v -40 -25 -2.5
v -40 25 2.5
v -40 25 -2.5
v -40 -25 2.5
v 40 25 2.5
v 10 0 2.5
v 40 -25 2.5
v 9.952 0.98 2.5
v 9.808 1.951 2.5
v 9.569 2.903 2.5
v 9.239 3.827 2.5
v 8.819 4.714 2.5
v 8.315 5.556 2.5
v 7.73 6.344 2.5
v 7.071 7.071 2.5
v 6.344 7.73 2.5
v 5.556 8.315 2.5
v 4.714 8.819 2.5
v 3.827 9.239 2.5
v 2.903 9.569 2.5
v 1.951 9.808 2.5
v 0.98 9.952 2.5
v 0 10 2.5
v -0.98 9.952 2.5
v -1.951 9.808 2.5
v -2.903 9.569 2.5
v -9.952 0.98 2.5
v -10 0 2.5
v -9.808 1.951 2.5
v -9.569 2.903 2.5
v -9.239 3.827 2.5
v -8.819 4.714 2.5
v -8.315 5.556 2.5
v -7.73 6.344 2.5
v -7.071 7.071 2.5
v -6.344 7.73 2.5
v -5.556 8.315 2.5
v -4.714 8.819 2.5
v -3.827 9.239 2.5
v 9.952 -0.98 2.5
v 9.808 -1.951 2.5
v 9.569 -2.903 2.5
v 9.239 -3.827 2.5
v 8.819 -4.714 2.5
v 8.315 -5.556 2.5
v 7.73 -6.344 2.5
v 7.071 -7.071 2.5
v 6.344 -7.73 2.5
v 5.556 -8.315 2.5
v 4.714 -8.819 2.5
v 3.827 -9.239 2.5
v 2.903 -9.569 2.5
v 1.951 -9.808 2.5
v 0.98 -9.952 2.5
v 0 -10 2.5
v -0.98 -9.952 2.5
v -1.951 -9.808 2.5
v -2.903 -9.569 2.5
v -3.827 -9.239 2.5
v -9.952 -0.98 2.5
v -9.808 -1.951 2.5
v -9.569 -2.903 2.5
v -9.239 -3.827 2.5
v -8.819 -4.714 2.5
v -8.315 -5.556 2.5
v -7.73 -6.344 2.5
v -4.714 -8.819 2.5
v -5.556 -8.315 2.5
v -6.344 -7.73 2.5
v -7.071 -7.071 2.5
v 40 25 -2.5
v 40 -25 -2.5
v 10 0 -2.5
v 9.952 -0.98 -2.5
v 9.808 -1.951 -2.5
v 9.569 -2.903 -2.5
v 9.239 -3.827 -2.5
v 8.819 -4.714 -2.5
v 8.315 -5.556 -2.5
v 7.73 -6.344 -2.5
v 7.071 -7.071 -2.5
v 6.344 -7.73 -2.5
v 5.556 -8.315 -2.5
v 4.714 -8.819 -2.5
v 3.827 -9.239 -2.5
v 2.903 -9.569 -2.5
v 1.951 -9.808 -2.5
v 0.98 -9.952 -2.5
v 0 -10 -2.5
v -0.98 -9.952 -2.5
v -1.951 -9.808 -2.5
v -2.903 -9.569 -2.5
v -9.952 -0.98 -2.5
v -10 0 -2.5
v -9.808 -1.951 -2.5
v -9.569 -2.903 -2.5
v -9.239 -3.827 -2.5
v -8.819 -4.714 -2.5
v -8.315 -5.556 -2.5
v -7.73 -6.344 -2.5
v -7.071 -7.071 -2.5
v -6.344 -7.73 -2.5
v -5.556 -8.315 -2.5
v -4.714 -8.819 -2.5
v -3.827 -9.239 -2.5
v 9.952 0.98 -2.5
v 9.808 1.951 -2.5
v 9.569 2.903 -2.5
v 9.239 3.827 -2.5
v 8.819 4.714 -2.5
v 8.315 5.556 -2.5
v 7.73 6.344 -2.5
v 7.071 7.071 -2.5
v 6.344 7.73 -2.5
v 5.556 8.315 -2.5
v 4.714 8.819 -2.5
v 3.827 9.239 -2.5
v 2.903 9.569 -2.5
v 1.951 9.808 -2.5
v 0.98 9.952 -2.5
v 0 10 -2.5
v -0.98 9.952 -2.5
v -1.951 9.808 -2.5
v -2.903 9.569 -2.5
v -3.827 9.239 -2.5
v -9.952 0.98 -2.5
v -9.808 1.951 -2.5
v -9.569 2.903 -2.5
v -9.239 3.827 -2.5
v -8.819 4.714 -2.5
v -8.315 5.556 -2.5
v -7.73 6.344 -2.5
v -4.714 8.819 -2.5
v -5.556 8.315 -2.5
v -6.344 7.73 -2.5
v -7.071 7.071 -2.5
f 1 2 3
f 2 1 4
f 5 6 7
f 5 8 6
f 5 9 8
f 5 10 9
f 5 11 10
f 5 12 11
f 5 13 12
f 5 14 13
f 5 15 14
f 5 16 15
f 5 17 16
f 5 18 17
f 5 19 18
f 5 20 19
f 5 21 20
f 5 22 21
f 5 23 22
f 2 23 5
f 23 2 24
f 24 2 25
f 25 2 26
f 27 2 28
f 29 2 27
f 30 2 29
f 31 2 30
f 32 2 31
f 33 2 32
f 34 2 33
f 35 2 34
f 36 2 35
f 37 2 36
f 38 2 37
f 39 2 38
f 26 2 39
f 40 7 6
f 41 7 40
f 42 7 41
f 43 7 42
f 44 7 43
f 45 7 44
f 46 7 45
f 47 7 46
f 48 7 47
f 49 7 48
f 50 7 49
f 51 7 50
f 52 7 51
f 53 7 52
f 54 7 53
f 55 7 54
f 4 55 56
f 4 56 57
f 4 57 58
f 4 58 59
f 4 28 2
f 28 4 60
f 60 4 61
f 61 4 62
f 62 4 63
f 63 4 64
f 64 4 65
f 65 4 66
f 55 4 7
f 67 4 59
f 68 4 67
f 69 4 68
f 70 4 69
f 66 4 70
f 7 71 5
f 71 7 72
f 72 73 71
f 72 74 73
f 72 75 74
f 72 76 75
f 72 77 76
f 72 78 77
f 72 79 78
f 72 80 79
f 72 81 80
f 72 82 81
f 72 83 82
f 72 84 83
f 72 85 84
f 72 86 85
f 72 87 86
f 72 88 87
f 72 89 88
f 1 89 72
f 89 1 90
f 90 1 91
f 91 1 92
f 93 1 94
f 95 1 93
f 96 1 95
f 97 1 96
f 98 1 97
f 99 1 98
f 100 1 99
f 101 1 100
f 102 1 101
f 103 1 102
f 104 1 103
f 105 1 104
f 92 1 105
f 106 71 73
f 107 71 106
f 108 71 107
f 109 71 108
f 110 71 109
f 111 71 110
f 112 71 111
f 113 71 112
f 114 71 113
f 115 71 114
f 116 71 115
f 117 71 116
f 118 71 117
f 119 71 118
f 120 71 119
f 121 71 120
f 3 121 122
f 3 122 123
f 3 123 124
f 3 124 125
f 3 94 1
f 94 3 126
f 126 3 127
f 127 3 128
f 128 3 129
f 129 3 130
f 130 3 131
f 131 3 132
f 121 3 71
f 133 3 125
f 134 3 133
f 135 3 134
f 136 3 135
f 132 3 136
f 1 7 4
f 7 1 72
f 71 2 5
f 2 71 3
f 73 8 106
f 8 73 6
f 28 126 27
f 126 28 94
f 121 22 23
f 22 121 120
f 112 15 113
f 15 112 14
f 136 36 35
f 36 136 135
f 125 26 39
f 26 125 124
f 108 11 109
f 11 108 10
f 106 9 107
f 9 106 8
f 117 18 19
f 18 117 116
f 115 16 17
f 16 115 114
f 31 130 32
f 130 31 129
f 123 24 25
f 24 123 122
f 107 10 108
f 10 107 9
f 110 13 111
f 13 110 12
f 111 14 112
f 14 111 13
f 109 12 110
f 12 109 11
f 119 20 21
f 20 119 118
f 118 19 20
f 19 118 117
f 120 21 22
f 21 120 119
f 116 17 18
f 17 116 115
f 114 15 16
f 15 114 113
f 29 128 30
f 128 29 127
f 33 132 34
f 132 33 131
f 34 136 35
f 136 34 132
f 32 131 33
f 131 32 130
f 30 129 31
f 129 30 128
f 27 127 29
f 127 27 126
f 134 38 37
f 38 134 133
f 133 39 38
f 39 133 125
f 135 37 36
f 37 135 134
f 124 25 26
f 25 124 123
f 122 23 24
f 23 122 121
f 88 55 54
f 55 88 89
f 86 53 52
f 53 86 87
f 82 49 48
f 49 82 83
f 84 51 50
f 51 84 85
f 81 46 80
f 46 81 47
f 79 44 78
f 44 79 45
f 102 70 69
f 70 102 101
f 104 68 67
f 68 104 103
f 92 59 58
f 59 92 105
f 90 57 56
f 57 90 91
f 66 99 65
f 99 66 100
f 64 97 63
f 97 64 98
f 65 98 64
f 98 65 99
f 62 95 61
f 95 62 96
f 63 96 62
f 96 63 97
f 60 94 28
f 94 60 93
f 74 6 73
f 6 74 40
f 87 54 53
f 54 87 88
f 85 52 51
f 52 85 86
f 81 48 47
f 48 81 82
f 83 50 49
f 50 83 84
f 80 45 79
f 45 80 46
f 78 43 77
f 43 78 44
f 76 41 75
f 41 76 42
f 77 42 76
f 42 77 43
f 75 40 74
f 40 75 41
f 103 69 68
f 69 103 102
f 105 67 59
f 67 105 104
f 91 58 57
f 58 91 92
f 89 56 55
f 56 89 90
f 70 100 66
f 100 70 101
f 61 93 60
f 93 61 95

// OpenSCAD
module plate() {
  difference() {
    cube([80, 50, 5], center=true);
    cylinder(h=5.1, r=10, center=true, $fn=64);
  }
}
plate();
